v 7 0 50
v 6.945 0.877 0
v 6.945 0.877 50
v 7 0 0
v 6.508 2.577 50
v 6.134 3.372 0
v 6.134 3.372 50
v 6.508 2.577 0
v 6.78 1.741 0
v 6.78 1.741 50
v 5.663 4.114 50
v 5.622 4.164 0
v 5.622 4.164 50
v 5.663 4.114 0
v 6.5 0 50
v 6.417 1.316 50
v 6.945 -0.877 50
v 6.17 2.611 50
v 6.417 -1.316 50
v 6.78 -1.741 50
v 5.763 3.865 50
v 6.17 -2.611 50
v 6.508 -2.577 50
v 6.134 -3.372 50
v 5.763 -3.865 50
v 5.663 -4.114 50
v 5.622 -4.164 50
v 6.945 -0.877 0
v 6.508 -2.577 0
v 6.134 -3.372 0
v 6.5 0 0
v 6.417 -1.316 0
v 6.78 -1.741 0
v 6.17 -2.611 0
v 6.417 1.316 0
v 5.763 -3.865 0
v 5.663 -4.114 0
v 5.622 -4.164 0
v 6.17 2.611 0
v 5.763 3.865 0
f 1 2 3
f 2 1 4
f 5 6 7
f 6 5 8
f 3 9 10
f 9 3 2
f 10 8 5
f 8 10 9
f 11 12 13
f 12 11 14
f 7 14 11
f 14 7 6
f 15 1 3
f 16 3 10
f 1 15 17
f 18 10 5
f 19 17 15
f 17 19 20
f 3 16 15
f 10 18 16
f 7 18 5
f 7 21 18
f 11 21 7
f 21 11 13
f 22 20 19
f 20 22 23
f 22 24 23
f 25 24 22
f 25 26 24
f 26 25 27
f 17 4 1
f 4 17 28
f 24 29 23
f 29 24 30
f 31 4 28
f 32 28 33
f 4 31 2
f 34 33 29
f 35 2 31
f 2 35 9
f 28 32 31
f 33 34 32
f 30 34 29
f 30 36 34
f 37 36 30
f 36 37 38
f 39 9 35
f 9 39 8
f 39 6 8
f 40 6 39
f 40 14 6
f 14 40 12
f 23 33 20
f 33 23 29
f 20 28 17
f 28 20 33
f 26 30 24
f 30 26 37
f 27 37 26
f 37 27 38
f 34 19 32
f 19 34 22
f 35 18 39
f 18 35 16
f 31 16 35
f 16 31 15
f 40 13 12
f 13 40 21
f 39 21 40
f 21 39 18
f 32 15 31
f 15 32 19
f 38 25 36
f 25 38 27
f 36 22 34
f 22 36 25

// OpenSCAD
$fn = 50;


difference() {
	union() {
		cylinder(h = 50, r = 7.0000000000);
		translate(v = [-7.0000000000, 0, 0]) {
			cylinder(h = 50, r = 7.0000000000);
		}
	}
	union() {
		cylinder(h = 50, r = 3.2500000000);
		cylinder(h = 50, r = 1.8000000000);
		cylinder(h = 50, r = 1.8000000000);
		cylinder(h = 50, r = 1.8000000000);
		translate(v = [-11.5000000000, 0, 0]) {
			hull() {
				translate(v = [-3.7500000000, 0.0000000000, 0]) {
					cylinder(h = 50, r = 7.5000000000);
				}
				translate(v = [3.7500000000, 0.0000000000, 0]) {
					cylinder(h = 50, r = 7.5000000000);
				}
				translate(v = [-3.7500000000, -0.0000000000, 0]) {
					cylinder(h = 50, r = 7.5000000000);
				}
				translate(v = [3.7500000000, -0.0000000000, 0]) {
					cylinder(h = 50, r = 7.5000000000);
				}
			}
		}
		translate(v = [-4.0000000000, 0, 0.0000000000]) {
			cylinder(h = 50, r = 10.5000000000);
		}
	}
}
